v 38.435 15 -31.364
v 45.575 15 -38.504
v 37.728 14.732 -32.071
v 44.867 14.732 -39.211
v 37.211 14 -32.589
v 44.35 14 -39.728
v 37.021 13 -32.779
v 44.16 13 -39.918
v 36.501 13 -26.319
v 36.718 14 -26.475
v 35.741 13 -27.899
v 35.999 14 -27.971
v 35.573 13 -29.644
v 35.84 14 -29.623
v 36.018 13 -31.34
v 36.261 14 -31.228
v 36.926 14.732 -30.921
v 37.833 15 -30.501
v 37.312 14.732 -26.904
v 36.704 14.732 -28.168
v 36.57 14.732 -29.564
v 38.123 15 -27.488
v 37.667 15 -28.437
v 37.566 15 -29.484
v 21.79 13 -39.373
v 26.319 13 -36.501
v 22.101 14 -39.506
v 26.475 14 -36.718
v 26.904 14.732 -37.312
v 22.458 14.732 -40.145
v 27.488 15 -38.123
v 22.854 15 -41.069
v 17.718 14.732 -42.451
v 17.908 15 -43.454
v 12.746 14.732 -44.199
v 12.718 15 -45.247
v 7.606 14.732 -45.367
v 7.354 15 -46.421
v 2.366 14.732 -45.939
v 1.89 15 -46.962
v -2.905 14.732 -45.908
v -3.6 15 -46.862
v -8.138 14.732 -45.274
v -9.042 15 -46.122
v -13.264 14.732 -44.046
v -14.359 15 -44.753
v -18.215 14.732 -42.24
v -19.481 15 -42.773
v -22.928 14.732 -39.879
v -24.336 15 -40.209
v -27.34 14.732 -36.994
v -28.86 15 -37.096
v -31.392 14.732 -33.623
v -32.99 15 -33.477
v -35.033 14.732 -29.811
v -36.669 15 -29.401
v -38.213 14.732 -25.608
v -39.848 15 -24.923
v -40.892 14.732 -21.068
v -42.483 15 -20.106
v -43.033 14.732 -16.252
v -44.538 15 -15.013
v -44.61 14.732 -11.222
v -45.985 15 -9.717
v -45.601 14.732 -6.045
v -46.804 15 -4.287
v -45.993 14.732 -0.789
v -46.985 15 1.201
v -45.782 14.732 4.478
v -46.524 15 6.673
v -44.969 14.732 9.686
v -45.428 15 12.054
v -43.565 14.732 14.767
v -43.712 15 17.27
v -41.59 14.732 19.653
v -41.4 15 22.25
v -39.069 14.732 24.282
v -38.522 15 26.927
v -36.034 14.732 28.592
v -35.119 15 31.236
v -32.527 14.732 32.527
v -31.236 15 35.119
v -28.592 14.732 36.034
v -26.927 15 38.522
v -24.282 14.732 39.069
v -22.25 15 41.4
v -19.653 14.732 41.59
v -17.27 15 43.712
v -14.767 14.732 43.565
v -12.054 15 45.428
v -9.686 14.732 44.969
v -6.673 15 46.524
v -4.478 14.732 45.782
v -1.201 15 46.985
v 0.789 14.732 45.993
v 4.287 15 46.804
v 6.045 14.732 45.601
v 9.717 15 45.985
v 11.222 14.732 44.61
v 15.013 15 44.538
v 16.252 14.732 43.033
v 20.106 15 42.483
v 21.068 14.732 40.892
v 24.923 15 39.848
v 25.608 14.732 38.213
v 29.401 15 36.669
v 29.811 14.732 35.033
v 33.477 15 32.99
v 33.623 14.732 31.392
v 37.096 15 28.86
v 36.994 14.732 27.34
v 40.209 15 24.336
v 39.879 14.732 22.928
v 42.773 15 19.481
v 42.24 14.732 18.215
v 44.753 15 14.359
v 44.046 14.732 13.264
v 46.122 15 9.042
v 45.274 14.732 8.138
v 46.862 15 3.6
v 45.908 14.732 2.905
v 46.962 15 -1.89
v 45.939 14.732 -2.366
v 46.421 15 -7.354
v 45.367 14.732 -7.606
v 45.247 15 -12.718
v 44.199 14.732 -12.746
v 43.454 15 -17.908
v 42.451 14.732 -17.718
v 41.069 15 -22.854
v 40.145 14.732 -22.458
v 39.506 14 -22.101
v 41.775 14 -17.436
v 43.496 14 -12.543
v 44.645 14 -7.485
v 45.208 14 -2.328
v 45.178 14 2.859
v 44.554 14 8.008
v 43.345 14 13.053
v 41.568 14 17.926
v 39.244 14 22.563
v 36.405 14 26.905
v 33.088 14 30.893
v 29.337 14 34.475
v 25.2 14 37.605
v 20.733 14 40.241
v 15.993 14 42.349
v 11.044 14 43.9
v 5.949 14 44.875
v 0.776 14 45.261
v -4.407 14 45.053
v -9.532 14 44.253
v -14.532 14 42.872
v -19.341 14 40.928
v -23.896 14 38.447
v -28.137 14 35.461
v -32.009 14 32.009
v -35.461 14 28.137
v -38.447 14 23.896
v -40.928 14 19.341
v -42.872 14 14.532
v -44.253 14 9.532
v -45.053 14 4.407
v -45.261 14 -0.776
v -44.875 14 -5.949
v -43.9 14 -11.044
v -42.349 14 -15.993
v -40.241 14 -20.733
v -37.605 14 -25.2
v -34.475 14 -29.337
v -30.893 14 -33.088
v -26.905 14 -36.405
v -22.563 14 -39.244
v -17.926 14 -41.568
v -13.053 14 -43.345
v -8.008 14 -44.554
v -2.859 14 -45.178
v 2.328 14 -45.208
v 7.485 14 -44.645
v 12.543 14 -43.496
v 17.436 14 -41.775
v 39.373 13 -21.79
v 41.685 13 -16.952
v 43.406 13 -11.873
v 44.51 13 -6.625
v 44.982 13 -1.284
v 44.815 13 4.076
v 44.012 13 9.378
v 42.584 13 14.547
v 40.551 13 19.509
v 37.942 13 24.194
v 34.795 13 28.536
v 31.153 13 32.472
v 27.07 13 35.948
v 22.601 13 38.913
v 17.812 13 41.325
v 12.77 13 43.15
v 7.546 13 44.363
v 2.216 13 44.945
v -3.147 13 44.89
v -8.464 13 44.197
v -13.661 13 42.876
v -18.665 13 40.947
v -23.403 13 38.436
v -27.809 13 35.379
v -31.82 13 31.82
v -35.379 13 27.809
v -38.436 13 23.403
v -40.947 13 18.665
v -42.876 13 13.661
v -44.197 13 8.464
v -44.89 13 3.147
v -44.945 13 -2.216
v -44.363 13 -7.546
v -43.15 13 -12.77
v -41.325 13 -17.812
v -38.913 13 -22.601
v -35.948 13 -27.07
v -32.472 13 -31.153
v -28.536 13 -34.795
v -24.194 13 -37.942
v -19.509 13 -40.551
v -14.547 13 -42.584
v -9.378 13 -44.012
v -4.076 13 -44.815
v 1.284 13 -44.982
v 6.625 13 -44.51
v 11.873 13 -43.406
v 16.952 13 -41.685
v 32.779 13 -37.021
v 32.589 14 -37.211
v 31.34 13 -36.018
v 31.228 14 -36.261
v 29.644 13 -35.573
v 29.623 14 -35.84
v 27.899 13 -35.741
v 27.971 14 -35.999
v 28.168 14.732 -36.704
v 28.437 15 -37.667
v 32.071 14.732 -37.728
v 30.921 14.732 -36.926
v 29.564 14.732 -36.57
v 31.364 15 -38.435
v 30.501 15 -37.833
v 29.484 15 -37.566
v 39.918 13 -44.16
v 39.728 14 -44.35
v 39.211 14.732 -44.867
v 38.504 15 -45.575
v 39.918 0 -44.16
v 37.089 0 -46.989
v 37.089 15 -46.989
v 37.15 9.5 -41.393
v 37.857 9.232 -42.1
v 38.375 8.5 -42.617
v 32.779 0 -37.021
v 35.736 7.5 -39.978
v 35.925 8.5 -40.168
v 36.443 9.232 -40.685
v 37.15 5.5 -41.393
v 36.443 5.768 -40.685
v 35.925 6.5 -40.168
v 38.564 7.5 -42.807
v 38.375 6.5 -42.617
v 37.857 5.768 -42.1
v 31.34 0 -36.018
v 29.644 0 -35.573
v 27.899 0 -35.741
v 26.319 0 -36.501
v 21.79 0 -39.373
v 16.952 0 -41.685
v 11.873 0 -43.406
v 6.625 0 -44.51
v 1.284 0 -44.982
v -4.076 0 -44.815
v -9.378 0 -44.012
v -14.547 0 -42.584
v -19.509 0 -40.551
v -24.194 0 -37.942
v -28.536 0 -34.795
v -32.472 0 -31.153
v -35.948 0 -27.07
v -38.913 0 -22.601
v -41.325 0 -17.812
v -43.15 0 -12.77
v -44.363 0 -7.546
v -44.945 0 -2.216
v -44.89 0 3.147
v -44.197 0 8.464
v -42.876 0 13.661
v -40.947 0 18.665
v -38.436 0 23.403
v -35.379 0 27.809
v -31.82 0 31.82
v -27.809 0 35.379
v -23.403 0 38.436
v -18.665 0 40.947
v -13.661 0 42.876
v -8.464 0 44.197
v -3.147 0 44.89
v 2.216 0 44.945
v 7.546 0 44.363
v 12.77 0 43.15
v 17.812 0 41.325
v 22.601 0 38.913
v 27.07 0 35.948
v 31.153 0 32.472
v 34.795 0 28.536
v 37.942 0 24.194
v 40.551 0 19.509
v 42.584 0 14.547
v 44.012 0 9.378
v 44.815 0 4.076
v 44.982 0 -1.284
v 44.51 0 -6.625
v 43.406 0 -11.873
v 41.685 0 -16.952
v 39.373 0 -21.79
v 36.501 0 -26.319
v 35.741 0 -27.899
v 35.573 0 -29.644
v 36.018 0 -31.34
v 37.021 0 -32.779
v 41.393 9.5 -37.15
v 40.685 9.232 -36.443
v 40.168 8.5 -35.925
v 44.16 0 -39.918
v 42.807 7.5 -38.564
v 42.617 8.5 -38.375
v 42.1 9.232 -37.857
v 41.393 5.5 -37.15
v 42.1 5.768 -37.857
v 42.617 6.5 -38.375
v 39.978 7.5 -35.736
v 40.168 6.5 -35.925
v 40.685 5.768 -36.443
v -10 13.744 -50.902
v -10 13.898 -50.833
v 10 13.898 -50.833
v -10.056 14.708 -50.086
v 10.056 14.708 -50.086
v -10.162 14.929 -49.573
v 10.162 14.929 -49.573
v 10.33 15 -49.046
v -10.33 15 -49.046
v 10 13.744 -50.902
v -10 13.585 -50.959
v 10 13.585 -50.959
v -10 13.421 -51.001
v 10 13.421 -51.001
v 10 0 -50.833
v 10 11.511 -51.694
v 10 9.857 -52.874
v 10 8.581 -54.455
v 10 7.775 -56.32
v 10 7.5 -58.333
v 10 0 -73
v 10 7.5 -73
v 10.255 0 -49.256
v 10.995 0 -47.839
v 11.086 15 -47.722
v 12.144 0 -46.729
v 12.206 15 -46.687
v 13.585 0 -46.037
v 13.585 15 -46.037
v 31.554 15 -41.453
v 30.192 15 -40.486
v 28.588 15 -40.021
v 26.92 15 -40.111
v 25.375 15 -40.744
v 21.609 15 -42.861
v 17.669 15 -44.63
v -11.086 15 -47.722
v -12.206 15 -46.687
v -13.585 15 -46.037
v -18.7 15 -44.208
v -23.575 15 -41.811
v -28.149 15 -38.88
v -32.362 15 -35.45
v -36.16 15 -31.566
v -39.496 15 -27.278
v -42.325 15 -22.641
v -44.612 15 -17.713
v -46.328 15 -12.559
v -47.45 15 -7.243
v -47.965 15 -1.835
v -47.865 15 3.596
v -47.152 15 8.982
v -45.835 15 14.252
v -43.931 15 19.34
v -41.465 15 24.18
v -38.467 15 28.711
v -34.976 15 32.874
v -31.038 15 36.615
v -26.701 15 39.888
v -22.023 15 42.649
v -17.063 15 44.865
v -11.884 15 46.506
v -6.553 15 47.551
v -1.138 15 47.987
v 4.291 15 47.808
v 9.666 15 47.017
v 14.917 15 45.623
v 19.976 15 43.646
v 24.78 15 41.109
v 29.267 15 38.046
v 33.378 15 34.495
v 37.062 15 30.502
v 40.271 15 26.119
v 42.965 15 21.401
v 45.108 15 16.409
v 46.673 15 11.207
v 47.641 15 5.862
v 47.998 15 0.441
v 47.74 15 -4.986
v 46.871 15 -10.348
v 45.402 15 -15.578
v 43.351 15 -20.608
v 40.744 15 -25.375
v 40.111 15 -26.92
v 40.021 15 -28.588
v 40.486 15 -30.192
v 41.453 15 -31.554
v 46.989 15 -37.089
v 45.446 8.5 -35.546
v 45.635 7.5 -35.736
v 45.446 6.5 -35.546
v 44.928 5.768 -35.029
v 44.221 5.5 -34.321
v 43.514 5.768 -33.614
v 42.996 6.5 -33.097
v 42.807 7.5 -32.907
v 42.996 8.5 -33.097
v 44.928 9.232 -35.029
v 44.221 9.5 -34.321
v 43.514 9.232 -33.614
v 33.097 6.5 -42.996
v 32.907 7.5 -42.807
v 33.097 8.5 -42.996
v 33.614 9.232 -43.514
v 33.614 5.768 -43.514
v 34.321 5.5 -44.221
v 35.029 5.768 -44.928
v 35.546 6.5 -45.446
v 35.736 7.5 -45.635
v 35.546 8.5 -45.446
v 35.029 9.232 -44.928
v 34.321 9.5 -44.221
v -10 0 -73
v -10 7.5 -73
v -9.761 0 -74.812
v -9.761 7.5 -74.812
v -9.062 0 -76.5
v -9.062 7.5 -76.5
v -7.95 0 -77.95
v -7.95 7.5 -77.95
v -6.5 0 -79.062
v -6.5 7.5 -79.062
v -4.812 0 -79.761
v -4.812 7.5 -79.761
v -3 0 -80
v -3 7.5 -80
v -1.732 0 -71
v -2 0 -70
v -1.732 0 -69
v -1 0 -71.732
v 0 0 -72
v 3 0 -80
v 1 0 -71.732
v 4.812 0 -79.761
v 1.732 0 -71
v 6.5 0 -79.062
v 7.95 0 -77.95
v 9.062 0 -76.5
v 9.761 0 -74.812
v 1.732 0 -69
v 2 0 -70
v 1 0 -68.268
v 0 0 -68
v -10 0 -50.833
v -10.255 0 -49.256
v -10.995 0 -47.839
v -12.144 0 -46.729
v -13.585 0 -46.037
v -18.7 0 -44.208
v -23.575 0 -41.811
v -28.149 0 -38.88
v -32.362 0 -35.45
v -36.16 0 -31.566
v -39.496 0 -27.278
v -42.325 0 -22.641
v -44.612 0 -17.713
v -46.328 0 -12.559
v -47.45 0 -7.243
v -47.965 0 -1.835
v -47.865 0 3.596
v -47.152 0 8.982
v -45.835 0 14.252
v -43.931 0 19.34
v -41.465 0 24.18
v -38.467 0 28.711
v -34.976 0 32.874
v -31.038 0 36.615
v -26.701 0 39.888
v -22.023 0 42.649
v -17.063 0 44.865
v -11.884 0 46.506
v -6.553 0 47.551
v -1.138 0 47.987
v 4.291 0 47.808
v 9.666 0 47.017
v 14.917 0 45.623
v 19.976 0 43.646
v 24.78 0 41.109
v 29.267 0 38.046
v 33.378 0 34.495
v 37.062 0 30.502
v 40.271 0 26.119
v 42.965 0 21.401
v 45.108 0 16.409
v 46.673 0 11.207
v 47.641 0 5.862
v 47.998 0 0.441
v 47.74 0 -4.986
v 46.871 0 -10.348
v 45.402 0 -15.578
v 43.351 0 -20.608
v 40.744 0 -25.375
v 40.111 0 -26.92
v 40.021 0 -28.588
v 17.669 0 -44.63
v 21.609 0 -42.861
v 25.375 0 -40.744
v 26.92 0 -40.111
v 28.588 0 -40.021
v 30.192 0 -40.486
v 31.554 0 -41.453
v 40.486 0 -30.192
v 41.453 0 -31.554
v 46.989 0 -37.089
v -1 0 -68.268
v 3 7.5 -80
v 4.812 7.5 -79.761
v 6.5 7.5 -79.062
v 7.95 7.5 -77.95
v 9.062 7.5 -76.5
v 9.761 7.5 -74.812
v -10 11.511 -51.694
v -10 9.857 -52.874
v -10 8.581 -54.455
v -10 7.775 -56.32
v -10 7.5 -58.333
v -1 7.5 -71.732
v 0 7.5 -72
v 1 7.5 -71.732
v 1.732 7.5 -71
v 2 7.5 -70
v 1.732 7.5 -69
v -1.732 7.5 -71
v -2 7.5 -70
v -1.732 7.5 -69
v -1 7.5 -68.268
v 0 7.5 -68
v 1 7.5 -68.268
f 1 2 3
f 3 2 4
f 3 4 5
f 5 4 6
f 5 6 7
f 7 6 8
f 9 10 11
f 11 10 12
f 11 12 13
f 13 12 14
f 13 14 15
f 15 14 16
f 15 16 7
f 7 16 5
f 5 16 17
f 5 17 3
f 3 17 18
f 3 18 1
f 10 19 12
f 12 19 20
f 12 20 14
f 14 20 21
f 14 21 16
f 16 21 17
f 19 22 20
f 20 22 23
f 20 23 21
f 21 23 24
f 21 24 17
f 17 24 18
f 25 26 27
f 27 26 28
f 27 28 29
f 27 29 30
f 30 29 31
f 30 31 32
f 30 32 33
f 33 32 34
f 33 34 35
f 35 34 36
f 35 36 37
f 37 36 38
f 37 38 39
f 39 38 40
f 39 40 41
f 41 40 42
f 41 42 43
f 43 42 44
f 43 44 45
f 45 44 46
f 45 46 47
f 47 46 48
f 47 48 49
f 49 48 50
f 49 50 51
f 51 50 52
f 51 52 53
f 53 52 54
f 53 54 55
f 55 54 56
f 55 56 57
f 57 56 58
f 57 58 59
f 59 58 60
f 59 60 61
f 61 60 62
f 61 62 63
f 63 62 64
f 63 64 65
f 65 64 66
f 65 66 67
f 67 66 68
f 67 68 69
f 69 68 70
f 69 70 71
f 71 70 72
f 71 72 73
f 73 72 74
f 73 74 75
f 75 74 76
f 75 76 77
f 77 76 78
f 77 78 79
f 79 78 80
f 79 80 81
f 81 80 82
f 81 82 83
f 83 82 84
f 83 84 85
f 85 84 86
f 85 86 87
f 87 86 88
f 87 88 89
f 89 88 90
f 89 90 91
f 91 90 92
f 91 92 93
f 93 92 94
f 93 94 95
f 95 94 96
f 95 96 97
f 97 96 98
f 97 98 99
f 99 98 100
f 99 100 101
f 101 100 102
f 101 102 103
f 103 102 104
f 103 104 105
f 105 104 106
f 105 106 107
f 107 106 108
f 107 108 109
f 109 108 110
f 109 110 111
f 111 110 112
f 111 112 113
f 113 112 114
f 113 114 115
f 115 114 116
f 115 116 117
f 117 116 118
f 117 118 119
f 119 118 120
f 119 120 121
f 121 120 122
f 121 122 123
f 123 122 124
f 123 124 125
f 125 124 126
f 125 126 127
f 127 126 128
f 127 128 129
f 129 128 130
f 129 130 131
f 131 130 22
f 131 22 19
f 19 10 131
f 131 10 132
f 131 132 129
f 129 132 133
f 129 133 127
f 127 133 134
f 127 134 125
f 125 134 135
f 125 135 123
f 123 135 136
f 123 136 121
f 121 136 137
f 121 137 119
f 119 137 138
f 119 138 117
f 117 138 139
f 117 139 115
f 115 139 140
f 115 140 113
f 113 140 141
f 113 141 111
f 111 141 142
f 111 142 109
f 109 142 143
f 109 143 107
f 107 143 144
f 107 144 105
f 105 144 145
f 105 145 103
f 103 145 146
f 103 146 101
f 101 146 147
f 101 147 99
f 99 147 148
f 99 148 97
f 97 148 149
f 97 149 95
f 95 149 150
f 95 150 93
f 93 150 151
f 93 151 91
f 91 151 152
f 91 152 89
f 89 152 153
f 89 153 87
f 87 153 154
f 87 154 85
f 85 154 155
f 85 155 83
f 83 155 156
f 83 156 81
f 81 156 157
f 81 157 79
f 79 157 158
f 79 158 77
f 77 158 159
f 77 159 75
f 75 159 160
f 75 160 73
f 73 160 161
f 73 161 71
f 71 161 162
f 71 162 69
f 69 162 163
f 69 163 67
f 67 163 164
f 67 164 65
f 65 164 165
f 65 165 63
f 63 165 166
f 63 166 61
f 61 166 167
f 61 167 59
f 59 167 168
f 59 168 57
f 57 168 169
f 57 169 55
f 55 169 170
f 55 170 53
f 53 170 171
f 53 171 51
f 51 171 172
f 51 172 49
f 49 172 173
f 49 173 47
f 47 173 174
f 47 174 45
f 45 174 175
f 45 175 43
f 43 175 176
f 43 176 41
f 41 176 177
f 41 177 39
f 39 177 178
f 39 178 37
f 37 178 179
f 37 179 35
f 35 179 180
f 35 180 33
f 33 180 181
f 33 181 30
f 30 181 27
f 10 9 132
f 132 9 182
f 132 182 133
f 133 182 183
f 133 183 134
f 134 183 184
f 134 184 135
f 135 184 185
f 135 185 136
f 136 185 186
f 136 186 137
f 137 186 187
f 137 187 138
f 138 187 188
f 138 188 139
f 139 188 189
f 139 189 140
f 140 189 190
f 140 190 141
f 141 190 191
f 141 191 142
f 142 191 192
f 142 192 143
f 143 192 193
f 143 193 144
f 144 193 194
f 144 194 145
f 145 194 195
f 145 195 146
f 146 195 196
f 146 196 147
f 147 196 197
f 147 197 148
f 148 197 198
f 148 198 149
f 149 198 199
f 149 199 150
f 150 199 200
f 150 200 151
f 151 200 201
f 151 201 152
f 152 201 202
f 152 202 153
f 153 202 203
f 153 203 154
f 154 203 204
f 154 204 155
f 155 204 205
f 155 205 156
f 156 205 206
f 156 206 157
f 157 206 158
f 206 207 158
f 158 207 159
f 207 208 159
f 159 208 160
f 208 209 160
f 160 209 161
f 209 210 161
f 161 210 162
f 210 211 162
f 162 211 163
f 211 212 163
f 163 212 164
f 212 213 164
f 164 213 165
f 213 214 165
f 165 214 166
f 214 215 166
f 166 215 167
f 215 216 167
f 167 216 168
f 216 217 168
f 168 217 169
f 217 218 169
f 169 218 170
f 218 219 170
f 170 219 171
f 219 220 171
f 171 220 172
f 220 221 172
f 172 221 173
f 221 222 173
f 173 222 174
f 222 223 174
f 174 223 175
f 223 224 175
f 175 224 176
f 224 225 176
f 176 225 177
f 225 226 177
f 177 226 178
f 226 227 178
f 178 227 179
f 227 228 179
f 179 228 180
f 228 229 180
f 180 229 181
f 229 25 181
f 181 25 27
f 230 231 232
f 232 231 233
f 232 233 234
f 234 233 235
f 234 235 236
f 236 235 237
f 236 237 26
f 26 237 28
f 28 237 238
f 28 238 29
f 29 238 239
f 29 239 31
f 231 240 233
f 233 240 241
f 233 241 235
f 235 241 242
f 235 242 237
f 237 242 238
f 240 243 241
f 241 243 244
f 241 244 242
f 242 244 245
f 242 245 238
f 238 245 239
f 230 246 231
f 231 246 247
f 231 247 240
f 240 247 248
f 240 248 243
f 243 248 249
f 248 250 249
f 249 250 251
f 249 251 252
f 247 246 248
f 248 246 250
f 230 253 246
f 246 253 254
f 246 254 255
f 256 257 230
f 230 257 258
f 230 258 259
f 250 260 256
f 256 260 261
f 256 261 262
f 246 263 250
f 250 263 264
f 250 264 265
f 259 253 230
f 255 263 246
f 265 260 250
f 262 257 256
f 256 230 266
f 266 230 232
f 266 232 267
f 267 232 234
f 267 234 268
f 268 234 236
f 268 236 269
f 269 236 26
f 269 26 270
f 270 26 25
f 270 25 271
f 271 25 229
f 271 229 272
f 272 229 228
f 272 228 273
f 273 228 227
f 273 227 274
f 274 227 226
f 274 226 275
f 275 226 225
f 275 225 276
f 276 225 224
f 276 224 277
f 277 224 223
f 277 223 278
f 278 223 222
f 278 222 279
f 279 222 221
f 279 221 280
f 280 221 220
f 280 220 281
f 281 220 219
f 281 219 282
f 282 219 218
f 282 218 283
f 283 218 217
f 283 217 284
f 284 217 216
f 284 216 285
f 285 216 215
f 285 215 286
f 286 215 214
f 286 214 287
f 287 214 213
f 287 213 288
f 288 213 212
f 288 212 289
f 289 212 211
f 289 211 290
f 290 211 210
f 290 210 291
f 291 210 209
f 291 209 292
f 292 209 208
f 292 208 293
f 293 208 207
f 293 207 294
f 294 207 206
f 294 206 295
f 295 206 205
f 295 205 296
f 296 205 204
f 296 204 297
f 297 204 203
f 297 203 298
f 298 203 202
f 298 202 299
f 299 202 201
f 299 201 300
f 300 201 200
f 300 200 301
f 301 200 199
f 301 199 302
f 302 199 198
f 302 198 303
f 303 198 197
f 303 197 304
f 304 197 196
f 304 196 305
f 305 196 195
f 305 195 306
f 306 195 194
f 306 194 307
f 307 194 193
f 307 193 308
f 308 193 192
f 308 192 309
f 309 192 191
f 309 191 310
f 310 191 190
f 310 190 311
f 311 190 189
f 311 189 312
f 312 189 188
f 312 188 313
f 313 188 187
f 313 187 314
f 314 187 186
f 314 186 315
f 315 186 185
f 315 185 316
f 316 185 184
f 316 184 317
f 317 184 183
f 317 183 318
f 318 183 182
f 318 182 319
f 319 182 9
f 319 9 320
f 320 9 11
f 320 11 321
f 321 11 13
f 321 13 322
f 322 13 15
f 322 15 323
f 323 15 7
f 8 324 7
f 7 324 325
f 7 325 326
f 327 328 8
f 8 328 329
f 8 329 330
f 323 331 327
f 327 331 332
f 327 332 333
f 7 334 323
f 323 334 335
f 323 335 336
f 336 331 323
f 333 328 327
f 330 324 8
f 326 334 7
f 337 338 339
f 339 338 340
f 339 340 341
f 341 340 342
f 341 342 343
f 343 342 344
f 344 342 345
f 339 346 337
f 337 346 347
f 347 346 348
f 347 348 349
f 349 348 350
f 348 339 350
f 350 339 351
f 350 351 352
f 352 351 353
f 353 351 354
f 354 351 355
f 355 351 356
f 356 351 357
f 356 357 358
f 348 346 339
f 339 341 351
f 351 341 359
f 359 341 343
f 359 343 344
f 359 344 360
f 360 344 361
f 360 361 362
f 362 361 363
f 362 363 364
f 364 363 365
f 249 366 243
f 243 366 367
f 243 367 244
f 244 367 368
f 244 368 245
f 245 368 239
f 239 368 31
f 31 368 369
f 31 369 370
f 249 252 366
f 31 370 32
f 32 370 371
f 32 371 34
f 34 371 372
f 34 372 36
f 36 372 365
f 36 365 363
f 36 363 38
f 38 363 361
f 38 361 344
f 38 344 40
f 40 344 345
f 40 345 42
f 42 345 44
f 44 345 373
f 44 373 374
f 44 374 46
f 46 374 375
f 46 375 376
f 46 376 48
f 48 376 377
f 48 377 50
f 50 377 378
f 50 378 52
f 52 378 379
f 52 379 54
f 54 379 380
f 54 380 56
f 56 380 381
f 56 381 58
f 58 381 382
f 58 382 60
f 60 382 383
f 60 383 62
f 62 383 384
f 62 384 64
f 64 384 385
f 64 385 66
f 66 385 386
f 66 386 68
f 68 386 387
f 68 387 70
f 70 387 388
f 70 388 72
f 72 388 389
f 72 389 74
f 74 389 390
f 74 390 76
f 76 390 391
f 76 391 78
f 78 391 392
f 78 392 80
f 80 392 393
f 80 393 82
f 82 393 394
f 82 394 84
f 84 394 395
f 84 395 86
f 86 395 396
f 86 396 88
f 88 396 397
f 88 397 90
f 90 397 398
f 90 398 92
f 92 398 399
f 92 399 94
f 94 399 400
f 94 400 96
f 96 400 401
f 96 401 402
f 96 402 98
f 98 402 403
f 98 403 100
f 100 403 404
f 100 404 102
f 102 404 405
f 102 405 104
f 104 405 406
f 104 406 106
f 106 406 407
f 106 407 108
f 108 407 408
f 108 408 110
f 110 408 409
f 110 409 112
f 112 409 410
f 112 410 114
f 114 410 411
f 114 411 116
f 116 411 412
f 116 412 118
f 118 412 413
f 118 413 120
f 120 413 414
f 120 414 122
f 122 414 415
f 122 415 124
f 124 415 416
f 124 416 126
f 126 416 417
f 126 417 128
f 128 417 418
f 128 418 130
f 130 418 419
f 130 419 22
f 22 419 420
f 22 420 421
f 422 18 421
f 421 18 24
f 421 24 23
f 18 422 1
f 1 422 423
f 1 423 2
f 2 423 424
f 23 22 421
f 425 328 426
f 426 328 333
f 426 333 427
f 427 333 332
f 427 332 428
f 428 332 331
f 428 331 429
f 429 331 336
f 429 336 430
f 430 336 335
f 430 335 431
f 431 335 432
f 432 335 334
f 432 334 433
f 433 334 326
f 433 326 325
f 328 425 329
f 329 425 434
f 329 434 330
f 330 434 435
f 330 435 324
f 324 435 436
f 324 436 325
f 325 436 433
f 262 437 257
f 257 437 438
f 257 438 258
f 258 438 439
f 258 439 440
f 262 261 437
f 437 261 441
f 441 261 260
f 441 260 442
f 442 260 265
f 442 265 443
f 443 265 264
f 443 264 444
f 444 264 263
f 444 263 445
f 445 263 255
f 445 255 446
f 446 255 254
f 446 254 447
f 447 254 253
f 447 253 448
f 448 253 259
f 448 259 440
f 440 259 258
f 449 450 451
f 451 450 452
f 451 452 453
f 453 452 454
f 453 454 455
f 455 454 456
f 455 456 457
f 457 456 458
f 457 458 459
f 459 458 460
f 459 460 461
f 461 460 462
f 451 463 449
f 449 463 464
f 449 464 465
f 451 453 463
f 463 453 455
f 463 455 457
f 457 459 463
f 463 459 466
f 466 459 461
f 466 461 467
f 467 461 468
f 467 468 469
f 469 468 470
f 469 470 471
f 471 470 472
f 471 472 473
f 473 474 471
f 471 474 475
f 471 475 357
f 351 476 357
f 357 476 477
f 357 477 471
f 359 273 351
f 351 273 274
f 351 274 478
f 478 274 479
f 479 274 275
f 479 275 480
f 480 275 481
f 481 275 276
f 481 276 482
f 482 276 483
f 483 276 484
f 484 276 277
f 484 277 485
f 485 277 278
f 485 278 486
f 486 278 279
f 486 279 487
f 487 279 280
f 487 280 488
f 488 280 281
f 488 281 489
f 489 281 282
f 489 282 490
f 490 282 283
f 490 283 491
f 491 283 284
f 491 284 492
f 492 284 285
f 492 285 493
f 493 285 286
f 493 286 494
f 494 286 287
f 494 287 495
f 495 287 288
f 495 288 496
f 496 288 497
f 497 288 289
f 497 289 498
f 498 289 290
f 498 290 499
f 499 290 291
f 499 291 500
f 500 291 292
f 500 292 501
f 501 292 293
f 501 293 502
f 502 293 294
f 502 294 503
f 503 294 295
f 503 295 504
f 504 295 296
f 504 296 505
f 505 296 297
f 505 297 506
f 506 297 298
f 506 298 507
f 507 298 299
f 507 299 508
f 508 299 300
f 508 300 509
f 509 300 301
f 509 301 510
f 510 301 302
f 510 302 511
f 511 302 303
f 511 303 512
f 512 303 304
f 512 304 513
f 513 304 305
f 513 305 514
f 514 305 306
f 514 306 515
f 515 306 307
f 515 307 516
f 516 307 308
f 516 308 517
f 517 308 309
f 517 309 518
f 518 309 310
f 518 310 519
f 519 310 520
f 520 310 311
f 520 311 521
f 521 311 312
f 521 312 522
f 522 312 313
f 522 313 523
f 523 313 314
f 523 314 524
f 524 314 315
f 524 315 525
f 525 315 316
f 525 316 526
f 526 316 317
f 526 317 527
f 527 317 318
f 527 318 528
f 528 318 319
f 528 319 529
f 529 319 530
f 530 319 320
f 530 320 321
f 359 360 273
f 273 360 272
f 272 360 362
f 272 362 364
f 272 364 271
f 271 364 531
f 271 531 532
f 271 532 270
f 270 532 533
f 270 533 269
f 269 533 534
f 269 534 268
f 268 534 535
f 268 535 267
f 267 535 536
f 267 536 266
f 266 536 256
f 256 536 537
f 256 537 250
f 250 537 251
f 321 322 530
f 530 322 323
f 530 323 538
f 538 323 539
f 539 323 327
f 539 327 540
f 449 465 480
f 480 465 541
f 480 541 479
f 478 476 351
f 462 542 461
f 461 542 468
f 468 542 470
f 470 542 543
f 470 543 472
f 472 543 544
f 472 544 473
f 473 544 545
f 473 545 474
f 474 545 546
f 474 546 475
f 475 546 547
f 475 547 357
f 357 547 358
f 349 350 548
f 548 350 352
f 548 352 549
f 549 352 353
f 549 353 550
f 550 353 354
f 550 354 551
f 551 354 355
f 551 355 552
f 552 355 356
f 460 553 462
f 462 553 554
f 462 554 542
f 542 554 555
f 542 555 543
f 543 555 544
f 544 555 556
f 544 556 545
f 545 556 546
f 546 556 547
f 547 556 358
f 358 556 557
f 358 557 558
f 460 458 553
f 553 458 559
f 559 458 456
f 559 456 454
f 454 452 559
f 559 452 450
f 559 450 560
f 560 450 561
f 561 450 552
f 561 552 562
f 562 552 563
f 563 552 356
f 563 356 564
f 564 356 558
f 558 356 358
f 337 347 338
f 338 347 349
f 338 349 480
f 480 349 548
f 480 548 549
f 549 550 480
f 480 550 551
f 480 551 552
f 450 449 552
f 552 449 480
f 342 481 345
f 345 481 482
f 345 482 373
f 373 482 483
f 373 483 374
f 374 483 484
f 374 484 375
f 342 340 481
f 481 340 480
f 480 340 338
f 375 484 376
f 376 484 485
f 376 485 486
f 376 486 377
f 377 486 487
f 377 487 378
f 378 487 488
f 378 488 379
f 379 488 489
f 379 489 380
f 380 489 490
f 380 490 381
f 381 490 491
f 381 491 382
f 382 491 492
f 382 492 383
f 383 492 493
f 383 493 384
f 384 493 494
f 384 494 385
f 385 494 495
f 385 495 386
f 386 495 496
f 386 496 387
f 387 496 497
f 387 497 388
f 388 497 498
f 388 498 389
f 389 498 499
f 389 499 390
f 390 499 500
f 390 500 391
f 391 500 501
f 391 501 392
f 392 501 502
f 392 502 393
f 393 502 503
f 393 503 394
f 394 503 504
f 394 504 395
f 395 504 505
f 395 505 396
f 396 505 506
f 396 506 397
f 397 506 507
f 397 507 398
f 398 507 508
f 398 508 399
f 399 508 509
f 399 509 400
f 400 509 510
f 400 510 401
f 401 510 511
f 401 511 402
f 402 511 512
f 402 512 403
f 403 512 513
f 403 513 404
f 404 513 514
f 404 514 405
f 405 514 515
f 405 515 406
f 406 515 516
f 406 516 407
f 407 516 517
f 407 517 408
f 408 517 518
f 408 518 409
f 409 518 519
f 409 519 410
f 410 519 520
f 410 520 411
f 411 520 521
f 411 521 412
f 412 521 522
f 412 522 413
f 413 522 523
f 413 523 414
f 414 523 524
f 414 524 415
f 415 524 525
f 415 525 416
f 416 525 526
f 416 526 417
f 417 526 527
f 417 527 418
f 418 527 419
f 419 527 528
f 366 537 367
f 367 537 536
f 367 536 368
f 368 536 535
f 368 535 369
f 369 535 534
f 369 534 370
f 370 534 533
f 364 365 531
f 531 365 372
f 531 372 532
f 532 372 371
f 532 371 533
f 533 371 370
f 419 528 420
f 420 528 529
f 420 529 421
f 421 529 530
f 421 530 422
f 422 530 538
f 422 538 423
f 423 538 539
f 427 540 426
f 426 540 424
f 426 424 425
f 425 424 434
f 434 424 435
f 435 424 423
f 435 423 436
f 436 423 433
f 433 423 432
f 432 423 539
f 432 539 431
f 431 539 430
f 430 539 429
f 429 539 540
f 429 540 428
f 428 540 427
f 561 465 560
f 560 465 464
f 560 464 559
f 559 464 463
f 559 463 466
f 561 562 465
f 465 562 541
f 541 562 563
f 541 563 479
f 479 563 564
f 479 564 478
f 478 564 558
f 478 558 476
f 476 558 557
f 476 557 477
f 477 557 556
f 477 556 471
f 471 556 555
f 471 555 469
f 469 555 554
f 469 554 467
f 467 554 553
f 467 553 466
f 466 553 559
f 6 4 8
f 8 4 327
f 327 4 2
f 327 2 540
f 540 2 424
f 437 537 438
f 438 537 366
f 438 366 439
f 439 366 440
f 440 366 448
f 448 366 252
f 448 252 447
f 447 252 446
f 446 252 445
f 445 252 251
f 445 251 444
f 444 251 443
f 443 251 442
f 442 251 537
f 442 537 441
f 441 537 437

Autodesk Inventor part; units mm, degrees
ref_plane "YZ Plane" through (0, 0, 0) normal (1, 0, 0) x (0, 1, 0)
ref_plane "XZ Plane" through (0, 0, 0) normal (0, 1, 0) x (-1, 0, 0)
ref_plane "XY Plane" through (0, 0, 0) normal (0, 0, 1) x (1, 0, 0)
sketch "Sketch1" plane through (0, 0, 0) normal (0, 1, 0) x (-1, 0, 0)
  circle A0 centre (0, 0) radius 48
  circle A1 centre (0, 0) radius 45
  line L0 (10, -45) -> (-10, -45)
  line L1 (-10, -45) -> (-10, -80)
  line L2 (-10, -80) -> (10, -80)
  line L3 (10, -80) -> (10, -45)
  line L4 (-4, 44.8219) -> (4, 44.8219)
  circle A2 centre (0, -70) radius 10
  circle A3 centre (0, -70) radius 2
  line L5 (0, 0) -> (-57.7849, -57.7849)
  line L6 (0, 0) -> (0, -45)
  line L7 (-26.4827, -36.3822) -> (-36.3822, -26.4827)
  line L8 (-36.3822, -26.4827) -> (-46.9888, -37.0893)
  line L9 (-46.9888, -37.0893) -> (-37.0893, -46.9888)
  line L10 (-37.0893, -46.9888) -> (-26.4827, -36.3822)
  line L11 (-29.3111, -33.5538) -> (-33.5538, -29.3111)
  line L12 (-33.5538, -29.3111) -> (-44.1604, -39.9177)
  line L13 (-44.1604, -39.9177) -> (-39.9177, -44.1604)
  line L14 (-39.9177, -44.1604) -> (-29.3111, -33.5538)
  point P0 (0, 45)
  point P1 (4, 60)
  point P2 (-10, -46.9468)
  point P3 (10, -46.9468)
  point P4 (10, -70)
  point P5 (-10, -70)
  point P6 (0, -45)
  point P7 (0, -80)
  point P8 (-28.6285, -38.528)
  point P9 (-38.528, -28.6285)
  point P10 (-29.6277, -33.8703)
  point P11 (-33.8703, -29.6277)
  dimension "d0" = 96
  dimension "d1" = 90
  dimension "d2" = 20
  dimension "d13" = 35
  dimension "d14" = 4
  dimension "d15" = 45
  dimension "d16" = 7
  dimension "d17" = 7
  dimension "d18" = 15
  dimension "d19" = 3
  dimension "d20" = 3
extrude "Extrusion1" add sketch "Sketch1" along normal blind 15 contours A0 L3 L0 A1 L8 | L8 A1 L12 A0 | A0 L12 L9 L8 | L3 A2 L1 A0 | A0 L1 L0 L3 | A0 L10 A1 L0 L1 | A2 | L3 L2 A2 | L10 L9 L14 A0 | A0 L14 A1 L10 | A2 L2 L1
fillet "Fillet1" radius 5 6 edges at (38.528, 7.5, -28.6285) (28.6285, 7.5, -38.528) (10, 7.5, -46.9468) (-10, 7.5, -46.9468) (33.8703, 7.5, -29.6277) (29.6277, 7.5, -33.8703)
sketch "Sketch5" plane through (10, 0, -80) normal (1, 0, 0) x (0, 0, -1)
  line L0 (0, 15) -> (-29.1669, 15) projected
  line L1 (0, 0) -> (0, 15) projected
  line L2 (-29.1669, 15) -> (0, 15)
  line L3 (0, 15) -> (0, 7.5)
  line L4 (0, 7.5) -> (-29.1669, 7.5)
  line L5 (-29.1669, 7.5) -> (-29.1669, 15)
  arc A0 (-29.1669, 15) -> (-21.6669, 7.5) centre (-21.6669, 15) ccw
  line L6 (-29.1669, 0) -> (-29.1669, 15) projected
  point P0 (-80, 0)
extrude "Extrusion3" cut sketch "Sketch5" against normal through all contours L1 L4 A0 L0
fillet "Fillet2" radius 7 2 edges at (10, 3.75, -80) (-10, 3.75, -80)
sketch "Sketch6" plane through (46.9888, 0, -37.0893) normal (0.7071, 0, 0.7071) x (0.7071, 0, -0.7071)
  circle A0 centre (-3.9143, 7.5) radius 2
  line L0 (0, 0) -> (0, 15) projected
  line L1 (-7.8286, 15) -> (0, 15) projected
  point P0 (-59.4522, 0)
  point P1 (0, 7.5)
  point P2 (-3.9143, 15)
  dimension "d25" = 4
extrude "Extrusion4" cut sketch "Sketch6" against normal up to surface (14 mm away)
fillet "Fillet3" radius 2 1 edges at (0, 15, -50.8331)
fillet "Fillet4" radius 2 5 edges at (-31.8198, 15, 31.8198) (29.6443, 15, -35.5728) (36.3481, 15, -40.5908) (35.5728, 15, -29.6443) (40.5908, 15, -36.3481)
properties part number "HopperMount"
